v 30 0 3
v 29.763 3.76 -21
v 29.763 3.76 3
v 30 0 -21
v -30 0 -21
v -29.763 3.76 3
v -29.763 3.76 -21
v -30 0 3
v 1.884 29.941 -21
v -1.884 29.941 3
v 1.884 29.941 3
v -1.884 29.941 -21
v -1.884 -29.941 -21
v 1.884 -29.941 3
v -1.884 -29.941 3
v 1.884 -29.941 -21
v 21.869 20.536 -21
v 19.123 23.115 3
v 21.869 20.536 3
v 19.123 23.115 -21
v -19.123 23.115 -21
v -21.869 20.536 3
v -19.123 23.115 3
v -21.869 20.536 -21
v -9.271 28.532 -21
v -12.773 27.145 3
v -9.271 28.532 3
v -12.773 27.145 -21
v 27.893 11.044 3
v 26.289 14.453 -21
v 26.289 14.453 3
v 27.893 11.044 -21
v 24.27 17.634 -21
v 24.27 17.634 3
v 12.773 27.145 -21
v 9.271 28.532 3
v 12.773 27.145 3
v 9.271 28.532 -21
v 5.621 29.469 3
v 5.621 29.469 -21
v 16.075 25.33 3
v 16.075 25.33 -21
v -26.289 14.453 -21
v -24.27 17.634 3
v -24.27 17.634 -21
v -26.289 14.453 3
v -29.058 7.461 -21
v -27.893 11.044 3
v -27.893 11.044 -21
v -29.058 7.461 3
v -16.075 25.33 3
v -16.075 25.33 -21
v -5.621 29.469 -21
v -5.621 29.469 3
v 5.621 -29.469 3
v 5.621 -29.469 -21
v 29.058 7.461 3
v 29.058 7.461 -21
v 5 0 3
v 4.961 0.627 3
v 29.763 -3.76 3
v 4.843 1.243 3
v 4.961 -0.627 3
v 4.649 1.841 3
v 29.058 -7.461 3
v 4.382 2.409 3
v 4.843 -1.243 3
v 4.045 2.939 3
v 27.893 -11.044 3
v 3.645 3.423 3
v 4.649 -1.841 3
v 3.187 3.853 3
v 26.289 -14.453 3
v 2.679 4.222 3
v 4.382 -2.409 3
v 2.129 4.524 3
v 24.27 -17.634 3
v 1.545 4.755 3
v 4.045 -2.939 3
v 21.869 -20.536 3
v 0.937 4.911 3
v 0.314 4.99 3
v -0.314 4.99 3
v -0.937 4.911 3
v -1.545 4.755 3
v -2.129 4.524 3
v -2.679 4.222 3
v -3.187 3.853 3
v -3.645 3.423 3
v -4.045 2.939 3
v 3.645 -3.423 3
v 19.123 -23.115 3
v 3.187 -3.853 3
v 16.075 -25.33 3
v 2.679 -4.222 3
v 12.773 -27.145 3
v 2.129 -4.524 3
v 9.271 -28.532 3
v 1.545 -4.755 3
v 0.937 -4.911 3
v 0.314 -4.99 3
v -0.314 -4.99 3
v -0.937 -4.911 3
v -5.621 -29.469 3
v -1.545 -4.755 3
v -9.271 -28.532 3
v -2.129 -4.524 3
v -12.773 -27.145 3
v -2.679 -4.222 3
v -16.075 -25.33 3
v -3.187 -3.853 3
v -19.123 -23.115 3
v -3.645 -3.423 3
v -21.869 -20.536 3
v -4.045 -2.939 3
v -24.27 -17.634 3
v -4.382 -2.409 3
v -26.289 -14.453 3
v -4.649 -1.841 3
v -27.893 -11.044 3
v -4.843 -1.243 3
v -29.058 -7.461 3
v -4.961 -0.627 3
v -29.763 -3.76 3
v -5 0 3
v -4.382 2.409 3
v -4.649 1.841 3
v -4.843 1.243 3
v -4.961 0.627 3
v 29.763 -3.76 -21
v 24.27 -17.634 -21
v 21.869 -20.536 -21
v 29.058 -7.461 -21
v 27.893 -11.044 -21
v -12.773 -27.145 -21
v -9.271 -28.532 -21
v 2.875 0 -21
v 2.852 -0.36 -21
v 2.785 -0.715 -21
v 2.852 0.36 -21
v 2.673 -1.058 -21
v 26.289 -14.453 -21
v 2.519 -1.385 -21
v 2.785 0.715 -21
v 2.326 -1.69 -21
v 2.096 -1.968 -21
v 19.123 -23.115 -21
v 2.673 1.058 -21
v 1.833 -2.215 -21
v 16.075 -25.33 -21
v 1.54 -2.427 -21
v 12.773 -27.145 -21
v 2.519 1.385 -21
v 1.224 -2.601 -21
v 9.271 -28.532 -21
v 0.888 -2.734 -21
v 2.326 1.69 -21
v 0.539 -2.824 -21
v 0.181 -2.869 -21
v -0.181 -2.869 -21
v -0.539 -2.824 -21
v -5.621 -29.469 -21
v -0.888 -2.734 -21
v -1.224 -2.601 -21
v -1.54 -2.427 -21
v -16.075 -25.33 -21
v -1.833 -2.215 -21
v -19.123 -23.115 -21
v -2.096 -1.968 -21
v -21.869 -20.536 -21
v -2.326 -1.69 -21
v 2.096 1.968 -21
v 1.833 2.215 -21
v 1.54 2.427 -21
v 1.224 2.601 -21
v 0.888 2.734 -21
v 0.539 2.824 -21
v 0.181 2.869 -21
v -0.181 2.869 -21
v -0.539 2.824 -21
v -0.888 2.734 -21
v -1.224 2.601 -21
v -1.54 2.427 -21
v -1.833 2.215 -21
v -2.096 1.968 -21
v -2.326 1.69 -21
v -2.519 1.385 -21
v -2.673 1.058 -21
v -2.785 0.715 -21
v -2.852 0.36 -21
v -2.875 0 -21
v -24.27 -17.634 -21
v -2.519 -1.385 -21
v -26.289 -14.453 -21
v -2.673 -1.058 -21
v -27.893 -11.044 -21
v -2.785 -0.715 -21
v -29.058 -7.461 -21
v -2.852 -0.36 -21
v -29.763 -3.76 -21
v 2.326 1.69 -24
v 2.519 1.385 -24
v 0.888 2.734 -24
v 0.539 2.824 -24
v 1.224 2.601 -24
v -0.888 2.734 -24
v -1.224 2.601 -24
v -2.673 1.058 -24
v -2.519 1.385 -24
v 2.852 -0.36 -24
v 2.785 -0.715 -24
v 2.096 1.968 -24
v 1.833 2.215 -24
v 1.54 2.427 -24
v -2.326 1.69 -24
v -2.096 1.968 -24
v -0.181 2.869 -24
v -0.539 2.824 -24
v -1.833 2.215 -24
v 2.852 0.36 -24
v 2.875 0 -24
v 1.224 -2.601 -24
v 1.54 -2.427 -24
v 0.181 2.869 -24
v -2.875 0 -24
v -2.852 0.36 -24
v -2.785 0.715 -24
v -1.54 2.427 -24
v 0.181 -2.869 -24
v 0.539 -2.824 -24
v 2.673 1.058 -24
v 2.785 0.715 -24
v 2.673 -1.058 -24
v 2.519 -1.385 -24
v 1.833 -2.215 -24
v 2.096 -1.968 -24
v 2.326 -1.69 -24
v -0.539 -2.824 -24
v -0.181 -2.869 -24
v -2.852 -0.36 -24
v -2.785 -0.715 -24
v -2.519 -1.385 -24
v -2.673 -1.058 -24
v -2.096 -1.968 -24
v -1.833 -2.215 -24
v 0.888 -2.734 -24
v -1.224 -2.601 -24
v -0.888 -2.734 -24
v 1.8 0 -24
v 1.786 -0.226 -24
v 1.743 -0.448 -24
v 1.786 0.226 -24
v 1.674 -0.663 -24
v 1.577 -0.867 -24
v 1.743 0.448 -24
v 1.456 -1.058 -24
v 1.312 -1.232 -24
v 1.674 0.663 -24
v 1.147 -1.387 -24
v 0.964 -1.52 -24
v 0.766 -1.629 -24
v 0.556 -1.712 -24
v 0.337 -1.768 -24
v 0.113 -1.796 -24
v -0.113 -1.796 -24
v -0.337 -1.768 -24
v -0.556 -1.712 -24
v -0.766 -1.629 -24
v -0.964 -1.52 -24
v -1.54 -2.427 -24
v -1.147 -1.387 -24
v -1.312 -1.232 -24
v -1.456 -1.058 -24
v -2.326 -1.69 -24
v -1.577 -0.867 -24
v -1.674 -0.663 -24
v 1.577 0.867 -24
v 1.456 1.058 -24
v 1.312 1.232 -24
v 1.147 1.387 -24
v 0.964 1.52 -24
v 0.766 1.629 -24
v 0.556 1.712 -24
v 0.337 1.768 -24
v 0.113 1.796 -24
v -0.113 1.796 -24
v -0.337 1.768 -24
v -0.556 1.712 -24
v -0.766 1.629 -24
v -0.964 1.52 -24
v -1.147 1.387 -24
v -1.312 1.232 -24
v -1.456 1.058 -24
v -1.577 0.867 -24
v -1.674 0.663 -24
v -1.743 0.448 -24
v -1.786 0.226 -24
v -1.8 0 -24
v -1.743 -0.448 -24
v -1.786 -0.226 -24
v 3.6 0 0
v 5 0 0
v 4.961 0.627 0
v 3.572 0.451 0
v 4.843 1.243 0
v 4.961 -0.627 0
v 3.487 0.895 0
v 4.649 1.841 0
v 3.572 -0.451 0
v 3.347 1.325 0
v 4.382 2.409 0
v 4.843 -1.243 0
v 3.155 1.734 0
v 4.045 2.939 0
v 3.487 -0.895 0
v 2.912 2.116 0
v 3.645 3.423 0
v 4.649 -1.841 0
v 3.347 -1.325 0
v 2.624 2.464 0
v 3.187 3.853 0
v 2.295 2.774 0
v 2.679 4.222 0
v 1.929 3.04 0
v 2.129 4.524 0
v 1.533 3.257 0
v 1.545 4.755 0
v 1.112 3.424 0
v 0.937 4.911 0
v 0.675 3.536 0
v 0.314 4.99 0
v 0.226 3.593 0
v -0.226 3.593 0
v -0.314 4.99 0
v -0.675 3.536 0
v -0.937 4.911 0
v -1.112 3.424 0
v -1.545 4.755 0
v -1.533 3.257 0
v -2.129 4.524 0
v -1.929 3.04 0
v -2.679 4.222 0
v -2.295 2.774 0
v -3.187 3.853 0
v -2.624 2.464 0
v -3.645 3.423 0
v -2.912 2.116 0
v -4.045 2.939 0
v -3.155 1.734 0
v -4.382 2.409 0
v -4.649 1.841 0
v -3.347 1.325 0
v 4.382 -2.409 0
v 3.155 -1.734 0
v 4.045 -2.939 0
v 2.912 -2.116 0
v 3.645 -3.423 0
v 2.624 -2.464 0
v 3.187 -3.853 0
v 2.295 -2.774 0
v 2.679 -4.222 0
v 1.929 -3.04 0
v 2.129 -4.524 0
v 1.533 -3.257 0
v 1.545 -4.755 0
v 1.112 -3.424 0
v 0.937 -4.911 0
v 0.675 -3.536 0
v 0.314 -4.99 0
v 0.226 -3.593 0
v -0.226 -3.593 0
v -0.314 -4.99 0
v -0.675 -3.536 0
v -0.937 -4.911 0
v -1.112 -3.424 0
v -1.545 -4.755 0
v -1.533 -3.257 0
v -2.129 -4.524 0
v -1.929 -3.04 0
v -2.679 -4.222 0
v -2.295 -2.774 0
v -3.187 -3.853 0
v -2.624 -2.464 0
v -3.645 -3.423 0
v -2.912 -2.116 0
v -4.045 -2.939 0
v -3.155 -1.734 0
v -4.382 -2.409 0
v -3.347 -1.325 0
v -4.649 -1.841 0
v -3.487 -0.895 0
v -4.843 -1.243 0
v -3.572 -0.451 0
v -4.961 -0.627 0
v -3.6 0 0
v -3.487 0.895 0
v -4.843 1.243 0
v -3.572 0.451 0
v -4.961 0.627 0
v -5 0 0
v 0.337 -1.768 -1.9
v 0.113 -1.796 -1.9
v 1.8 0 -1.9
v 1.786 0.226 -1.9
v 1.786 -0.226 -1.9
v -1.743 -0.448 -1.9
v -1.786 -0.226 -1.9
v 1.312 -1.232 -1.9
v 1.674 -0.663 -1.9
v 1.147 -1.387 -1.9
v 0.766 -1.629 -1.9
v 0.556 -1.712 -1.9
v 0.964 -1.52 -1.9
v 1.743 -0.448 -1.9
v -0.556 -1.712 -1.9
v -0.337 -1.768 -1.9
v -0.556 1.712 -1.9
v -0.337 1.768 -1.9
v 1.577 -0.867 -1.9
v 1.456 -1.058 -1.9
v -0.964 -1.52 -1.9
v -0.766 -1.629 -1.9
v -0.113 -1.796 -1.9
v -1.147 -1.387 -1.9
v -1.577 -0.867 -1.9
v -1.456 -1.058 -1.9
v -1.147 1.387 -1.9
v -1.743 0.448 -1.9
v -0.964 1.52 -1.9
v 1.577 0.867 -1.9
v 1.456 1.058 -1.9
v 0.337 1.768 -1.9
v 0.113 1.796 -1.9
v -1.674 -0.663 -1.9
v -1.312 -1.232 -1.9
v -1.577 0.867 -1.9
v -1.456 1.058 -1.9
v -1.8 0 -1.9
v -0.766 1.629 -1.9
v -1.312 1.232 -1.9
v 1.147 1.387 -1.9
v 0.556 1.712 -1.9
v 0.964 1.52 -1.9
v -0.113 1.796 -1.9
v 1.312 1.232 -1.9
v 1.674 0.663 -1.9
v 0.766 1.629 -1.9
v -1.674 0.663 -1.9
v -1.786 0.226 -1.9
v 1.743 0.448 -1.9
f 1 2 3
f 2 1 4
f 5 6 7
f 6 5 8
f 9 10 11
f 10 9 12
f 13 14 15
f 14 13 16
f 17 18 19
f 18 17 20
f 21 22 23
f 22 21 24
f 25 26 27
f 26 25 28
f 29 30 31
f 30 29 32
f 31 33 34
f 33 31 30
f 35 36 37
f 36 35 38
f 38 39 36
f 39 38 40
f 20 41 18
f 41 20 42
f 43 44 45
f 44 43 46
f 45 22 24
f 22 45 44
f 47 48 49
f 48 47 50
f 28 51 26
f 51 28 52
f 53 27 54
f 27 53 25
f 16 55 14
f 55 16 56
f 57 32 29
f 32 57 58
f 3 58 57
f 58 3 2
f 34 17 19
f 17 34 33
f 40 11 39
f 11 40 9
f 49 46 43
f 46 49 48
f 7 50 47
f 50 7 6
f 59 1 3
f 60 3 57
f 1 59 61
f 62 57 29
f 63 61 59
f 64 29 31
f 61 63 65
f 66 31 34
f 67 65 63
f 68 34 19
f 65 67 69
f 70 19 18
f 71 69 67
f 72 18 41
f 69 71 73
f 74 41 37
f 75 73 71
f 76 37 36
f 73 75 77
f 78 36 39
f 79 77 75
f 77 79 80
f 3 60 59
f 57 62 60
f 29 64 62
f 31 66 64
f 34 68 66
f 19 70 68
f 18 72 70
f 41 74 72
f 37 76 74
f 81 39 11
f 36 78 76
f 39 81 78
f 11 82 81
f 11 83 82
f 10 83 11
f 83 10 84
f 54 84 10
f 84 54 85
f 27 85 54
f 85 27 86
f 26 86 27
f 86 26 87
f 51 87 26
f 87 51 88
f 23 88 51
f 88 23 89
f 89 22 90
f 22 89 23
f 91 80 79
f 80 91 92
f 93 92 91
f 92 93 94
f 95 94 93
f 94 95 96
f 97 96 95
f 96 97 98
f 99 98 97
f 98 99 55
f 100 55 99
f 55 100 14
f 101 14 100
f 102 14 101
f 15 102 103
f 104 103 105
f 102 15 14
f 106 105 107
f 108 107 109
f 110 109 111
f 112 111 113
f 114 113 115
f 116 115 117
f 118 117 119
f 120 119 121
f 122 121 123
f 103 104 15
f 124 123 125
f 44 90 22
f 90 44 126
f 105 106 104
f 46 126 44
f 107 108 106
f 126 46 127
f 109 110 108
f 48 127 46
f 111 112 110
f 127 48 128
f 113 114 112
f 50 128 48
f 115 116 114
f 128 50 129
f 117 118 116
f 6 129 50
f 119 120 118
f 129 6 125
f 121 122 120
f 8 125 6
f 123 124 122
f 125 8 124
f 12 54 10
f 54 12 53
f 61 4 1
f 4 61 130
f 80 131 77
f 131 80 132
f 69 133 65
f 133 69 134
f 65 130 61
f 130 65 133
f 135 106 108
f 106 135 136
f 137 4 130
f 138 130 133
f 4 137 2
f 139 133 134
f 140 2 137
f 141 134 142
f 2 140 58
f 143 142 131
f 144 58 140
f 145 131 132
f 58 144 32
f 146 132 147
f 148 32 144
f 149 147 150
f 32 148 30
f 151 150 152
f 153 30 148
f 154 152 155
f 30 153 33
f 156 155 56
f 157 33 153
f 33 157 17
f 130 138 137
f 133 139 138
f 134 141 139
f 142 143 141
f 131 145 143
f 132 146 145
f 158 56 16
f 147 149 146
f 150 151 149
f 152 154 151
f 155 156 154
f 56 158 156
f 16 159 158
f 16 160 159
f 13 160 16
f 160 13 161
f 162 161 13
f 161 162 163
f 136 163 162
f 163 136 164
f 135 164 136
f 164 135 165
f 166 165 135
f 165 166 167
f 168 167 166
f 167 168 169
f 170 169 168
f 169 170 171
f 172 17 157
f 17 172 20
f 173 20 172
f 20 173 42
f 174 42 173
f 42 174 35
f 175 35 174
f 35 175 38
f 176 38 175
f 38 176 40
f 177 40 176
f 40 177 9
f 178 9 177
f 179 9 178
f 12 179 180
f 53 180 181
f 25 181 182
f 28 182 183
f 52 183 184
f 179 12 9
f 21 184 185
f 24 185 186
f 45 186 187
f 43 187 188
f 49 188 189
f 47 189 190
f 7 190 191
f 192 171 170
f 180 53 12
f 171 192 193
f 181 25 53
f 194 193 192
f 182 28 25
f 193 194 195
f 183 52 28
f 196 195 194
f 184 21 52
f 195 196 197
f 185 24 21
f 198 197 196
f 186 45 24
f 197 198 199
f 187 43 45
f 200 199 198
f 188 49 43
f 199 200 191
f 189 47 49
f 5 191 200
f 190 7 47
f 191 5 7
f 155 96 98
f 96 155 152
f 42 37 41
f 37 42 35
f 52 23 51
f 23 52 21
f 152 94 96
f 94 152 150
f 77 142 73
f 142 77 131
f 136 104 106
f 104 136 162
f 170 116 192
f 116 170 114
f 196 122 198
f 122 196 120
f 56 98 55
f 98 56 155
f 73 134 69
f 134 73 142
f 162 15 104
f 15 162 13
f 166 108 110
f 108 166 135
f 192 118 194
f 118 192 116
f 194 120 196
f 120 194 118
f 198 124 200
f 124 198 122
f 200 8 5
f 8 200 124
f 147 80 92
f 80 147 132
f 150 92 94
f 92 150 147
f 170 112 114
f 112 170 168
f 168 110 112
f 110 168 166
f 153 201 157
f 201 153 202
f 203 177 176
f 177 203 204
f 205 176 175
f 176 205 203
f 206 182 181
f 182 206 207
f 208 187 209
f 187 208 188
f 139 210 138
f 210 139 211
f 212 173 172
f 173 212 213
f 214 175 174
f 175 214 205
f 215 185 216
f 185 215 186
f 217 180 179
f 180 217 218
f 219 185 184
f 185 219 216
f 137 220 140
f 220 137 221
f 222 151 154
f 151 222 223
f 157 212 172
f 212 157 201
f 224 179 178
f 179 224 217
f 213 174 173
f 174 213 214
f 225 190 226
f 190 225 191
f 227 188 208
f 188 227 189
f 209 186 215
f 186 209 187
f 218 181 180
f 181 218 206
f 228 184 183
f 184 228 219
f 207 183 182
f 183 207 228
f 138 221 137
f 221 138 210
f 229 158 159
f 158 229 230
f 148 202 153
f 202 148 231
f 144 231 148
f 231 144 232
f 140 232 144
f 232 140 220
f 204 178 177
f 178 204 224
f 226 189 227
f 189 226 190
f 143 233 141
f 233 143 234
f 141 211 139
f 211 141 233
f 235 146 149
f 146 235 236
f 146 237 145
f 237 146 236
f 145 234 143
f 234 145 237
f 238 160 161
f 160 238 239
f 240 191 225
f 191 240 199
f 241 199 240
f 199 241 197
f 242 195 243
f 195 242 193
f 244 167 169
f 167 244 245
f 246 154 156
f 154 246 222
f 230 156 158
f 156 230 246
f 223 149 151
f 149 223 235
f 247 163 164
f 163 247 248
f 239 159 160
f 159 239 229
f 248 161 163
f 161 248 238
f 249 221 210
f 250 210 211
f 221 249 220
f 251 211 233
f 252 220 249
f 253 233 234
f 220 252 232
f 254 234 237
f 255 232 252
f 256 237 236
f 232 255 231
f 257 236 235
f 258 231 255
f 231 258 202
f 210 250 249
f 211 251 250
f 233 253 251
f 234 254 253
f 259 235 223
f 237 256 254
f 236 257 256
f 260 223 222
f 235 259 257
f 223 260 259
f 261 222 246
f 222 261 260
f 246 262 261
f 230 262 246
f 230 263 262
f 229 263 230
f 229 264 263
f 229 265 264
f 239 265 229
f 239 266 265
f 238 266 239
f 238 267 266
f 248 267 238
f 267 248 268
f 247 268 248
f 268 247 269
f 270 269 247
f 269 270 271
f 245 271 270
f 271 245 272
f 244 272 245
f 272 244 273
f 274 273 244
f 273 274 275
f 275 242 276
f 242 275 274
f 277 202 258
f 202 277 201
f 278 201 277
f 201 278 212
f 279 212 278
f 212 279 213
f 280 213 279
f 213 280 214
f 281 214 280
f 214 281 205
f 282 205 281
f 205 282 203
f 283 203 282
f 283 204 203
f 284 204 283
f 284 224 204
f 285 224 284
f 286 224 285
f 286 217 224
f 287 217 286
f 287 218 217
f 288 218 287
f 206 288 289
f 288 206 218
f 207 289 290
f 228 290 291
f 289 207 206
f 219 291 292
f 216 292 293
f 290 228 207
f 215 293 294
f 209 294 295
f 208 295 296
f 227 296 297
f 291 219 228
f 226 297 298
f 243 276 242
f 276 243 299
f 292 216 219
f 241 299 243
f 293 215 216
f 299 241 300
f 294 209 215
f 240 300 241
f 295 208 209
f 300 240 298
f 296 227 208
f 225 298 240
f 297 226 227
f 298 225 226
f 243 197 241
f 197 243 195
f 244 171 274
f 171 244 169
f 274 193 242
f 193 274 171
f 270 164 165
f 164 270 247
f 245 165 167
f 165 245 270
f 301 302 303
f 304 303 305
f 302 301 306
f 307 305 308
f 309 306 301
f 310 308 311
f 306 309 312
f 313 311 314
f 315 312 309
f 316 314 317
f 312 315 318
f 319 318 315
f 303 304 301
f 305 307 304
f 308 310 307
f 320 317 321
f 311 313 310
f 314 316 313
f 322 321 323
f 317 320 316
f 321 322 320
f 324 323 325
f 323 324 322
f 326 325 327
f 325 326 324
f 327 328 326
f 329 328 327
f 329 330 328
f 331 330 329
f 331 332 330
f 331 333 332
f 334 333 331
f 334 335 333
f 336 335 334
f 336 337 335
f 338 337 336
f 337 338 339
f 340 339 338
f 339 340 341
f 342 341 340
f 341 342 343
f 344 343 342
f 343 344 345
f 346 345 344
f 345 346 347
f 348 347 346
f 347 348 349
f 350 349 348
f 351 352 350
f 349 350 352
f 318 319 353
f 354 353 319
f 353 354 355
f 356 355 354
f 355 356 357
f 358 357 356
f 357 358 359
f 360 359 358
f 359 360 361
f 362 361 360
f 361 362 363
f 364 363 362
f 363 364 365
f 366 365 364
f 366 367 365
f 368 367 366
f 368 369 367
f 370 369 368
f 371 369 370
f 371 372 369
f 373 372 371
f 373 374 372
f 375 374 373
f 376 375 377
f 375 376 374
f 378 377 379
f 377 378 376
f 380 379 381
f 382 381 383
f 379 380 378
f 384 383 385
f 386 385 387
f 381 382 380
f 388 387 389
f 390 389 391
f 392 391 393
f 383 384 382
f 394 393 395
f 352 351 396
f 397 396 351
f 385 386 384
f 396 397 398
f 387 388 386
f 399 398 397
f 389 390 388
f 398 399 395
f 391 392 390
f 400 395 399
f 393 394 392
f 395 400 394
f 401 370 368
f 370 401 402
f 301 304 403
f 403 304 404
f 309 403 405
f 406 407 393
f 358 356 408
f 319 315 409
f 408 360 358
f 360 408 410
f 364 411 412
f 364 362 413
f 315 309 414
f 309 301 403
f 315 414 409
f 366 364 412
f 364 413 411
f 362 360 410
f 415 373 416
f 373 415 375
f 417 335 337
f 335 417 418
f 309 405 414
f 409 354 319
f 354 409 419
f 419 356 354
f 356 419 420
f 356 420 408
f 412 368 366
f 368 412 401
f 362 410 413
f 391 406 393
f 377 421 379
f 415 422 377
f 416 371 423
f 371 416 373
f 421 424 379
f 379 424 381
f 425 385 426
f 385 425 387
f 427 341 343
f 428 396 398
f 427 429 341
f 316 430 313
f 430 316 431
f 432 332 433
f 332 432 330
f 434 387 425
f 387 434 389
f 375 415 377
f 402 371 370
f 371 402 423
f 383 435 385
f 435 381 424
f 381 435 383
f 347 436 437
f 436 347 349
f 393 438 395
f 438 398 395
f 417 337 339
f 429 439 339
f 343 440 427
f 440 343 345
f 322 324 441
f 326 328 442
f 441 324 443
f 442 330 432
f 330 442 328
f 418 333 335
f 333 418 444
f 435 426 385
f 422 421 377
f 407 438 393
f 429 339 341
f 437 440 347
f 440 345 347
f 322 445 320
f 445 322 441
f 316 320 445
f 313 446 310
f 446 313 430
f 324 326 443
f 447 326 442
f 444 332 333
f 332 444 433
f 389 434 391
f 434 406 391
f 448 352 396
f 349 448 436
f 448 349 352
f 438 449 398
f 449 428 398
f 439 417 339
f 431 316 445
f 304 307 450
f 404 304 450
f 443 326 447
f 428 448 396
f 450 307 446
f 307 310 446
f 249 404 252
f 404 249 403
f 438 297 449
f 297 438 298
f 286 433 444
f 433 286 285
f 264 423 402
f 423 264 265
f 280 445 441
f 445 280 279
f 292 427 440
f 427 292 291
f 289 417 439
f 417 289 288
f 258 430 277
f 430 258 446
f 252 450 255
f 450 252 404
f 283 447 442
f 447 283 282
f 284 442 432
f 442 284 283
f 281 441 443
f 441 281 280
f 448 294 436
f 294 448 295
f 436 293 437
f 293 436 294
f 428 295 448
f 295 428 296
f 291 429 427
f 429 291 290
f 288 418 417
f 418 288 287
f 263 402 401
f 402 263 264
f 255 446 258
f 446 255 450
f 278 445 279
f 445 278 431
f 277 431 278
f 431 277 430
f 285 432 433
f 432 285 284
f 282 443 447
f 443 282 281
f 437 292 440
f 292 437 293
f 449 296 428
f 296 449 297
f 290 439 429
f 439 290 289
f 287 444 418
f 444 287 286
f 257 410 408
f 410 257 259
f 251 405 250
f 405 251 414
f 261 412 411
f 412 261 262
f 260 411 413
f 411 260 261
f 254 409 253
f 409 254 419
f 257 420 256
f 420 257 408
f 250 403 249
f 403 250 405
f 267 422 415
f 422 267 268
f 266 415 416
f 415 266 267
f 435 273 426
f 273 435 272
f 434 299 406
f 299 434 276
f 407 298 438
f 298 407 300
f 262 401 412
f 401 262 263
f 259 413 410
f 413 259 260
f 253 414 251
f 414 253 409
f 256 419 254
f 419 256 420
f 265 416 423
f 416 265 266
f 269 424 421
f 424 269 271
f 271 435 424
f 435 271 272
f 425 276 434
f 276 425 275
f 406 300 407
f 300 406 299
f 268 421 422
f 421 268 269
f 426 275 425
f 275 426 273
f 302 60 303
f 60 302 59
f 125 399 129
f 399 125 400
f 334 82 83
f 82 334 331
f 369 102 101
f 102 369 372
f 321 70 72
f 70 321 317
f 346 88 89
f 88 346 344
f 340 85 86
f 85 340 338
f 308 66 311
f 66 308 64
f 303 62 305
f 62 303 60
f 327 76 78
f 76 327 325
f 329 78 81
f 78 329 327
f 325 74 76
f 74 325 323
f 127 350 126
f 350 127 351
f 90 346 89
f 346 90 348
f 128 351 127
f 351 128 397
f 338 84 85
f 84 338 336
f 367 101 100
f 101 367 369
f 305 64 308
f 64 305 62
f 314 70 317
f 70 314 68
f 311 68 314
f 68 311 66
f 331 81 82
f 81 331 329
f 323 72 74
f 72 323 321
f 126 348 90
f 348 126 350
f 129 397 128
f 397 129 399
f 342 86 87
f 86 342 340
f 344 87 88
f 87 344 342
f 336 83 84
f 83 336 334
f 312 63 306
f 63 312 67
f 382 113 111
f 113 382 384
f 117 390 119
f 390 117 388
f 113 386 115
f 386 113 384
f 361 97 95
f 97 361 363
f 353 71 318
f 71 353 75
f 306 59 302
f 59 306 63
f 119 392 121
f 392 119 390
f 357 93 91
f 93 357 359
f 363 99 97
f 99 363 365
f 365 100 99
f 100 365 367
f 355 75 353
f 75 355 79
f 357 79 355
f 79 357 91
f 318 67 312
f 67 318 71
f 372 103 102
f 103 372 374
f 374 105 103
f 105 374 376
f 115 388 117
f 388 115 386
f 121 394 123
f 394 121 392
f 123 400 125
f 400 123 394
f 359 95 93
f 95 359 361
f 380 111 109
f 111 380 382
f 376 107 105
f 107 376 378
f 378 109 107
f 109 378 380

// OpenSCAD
$fn = 50;

difference() {
	union() {
		translate(v = [0, 0, -21.0]) {
			cylinder(h = 24, r = 30.0);
		}
		#translate(v = [0, 0, -24.0]) {
			cylinder(h = 24, r = 2.875);
		}
	}
	union() {
		translate(v = [0, 0, 0]) {
			rotate(a = [0, 0, 0]) {
				difference() {
					union() {
						translate(v = [0, 0, -24.0]) {
							cylinder(h = 24, r = 1.5);
						}
						translate(v = [0, 0, -1.9]) {
							cylinder(h = 1.9, r1 = 1.8, r2 = 3.6);
						}
						translate(v = [0, 0, -24.0]) {
							cylinder(h = 24, r = 1.8);
						}
						translate(v = [0, 0, -24.0]) {
							cylinder(h = 24, r = 1.5);
						}
					}
					union();
				}
			}
		}
		#cylinder(h = 3, r = 5.0);
	}
}
